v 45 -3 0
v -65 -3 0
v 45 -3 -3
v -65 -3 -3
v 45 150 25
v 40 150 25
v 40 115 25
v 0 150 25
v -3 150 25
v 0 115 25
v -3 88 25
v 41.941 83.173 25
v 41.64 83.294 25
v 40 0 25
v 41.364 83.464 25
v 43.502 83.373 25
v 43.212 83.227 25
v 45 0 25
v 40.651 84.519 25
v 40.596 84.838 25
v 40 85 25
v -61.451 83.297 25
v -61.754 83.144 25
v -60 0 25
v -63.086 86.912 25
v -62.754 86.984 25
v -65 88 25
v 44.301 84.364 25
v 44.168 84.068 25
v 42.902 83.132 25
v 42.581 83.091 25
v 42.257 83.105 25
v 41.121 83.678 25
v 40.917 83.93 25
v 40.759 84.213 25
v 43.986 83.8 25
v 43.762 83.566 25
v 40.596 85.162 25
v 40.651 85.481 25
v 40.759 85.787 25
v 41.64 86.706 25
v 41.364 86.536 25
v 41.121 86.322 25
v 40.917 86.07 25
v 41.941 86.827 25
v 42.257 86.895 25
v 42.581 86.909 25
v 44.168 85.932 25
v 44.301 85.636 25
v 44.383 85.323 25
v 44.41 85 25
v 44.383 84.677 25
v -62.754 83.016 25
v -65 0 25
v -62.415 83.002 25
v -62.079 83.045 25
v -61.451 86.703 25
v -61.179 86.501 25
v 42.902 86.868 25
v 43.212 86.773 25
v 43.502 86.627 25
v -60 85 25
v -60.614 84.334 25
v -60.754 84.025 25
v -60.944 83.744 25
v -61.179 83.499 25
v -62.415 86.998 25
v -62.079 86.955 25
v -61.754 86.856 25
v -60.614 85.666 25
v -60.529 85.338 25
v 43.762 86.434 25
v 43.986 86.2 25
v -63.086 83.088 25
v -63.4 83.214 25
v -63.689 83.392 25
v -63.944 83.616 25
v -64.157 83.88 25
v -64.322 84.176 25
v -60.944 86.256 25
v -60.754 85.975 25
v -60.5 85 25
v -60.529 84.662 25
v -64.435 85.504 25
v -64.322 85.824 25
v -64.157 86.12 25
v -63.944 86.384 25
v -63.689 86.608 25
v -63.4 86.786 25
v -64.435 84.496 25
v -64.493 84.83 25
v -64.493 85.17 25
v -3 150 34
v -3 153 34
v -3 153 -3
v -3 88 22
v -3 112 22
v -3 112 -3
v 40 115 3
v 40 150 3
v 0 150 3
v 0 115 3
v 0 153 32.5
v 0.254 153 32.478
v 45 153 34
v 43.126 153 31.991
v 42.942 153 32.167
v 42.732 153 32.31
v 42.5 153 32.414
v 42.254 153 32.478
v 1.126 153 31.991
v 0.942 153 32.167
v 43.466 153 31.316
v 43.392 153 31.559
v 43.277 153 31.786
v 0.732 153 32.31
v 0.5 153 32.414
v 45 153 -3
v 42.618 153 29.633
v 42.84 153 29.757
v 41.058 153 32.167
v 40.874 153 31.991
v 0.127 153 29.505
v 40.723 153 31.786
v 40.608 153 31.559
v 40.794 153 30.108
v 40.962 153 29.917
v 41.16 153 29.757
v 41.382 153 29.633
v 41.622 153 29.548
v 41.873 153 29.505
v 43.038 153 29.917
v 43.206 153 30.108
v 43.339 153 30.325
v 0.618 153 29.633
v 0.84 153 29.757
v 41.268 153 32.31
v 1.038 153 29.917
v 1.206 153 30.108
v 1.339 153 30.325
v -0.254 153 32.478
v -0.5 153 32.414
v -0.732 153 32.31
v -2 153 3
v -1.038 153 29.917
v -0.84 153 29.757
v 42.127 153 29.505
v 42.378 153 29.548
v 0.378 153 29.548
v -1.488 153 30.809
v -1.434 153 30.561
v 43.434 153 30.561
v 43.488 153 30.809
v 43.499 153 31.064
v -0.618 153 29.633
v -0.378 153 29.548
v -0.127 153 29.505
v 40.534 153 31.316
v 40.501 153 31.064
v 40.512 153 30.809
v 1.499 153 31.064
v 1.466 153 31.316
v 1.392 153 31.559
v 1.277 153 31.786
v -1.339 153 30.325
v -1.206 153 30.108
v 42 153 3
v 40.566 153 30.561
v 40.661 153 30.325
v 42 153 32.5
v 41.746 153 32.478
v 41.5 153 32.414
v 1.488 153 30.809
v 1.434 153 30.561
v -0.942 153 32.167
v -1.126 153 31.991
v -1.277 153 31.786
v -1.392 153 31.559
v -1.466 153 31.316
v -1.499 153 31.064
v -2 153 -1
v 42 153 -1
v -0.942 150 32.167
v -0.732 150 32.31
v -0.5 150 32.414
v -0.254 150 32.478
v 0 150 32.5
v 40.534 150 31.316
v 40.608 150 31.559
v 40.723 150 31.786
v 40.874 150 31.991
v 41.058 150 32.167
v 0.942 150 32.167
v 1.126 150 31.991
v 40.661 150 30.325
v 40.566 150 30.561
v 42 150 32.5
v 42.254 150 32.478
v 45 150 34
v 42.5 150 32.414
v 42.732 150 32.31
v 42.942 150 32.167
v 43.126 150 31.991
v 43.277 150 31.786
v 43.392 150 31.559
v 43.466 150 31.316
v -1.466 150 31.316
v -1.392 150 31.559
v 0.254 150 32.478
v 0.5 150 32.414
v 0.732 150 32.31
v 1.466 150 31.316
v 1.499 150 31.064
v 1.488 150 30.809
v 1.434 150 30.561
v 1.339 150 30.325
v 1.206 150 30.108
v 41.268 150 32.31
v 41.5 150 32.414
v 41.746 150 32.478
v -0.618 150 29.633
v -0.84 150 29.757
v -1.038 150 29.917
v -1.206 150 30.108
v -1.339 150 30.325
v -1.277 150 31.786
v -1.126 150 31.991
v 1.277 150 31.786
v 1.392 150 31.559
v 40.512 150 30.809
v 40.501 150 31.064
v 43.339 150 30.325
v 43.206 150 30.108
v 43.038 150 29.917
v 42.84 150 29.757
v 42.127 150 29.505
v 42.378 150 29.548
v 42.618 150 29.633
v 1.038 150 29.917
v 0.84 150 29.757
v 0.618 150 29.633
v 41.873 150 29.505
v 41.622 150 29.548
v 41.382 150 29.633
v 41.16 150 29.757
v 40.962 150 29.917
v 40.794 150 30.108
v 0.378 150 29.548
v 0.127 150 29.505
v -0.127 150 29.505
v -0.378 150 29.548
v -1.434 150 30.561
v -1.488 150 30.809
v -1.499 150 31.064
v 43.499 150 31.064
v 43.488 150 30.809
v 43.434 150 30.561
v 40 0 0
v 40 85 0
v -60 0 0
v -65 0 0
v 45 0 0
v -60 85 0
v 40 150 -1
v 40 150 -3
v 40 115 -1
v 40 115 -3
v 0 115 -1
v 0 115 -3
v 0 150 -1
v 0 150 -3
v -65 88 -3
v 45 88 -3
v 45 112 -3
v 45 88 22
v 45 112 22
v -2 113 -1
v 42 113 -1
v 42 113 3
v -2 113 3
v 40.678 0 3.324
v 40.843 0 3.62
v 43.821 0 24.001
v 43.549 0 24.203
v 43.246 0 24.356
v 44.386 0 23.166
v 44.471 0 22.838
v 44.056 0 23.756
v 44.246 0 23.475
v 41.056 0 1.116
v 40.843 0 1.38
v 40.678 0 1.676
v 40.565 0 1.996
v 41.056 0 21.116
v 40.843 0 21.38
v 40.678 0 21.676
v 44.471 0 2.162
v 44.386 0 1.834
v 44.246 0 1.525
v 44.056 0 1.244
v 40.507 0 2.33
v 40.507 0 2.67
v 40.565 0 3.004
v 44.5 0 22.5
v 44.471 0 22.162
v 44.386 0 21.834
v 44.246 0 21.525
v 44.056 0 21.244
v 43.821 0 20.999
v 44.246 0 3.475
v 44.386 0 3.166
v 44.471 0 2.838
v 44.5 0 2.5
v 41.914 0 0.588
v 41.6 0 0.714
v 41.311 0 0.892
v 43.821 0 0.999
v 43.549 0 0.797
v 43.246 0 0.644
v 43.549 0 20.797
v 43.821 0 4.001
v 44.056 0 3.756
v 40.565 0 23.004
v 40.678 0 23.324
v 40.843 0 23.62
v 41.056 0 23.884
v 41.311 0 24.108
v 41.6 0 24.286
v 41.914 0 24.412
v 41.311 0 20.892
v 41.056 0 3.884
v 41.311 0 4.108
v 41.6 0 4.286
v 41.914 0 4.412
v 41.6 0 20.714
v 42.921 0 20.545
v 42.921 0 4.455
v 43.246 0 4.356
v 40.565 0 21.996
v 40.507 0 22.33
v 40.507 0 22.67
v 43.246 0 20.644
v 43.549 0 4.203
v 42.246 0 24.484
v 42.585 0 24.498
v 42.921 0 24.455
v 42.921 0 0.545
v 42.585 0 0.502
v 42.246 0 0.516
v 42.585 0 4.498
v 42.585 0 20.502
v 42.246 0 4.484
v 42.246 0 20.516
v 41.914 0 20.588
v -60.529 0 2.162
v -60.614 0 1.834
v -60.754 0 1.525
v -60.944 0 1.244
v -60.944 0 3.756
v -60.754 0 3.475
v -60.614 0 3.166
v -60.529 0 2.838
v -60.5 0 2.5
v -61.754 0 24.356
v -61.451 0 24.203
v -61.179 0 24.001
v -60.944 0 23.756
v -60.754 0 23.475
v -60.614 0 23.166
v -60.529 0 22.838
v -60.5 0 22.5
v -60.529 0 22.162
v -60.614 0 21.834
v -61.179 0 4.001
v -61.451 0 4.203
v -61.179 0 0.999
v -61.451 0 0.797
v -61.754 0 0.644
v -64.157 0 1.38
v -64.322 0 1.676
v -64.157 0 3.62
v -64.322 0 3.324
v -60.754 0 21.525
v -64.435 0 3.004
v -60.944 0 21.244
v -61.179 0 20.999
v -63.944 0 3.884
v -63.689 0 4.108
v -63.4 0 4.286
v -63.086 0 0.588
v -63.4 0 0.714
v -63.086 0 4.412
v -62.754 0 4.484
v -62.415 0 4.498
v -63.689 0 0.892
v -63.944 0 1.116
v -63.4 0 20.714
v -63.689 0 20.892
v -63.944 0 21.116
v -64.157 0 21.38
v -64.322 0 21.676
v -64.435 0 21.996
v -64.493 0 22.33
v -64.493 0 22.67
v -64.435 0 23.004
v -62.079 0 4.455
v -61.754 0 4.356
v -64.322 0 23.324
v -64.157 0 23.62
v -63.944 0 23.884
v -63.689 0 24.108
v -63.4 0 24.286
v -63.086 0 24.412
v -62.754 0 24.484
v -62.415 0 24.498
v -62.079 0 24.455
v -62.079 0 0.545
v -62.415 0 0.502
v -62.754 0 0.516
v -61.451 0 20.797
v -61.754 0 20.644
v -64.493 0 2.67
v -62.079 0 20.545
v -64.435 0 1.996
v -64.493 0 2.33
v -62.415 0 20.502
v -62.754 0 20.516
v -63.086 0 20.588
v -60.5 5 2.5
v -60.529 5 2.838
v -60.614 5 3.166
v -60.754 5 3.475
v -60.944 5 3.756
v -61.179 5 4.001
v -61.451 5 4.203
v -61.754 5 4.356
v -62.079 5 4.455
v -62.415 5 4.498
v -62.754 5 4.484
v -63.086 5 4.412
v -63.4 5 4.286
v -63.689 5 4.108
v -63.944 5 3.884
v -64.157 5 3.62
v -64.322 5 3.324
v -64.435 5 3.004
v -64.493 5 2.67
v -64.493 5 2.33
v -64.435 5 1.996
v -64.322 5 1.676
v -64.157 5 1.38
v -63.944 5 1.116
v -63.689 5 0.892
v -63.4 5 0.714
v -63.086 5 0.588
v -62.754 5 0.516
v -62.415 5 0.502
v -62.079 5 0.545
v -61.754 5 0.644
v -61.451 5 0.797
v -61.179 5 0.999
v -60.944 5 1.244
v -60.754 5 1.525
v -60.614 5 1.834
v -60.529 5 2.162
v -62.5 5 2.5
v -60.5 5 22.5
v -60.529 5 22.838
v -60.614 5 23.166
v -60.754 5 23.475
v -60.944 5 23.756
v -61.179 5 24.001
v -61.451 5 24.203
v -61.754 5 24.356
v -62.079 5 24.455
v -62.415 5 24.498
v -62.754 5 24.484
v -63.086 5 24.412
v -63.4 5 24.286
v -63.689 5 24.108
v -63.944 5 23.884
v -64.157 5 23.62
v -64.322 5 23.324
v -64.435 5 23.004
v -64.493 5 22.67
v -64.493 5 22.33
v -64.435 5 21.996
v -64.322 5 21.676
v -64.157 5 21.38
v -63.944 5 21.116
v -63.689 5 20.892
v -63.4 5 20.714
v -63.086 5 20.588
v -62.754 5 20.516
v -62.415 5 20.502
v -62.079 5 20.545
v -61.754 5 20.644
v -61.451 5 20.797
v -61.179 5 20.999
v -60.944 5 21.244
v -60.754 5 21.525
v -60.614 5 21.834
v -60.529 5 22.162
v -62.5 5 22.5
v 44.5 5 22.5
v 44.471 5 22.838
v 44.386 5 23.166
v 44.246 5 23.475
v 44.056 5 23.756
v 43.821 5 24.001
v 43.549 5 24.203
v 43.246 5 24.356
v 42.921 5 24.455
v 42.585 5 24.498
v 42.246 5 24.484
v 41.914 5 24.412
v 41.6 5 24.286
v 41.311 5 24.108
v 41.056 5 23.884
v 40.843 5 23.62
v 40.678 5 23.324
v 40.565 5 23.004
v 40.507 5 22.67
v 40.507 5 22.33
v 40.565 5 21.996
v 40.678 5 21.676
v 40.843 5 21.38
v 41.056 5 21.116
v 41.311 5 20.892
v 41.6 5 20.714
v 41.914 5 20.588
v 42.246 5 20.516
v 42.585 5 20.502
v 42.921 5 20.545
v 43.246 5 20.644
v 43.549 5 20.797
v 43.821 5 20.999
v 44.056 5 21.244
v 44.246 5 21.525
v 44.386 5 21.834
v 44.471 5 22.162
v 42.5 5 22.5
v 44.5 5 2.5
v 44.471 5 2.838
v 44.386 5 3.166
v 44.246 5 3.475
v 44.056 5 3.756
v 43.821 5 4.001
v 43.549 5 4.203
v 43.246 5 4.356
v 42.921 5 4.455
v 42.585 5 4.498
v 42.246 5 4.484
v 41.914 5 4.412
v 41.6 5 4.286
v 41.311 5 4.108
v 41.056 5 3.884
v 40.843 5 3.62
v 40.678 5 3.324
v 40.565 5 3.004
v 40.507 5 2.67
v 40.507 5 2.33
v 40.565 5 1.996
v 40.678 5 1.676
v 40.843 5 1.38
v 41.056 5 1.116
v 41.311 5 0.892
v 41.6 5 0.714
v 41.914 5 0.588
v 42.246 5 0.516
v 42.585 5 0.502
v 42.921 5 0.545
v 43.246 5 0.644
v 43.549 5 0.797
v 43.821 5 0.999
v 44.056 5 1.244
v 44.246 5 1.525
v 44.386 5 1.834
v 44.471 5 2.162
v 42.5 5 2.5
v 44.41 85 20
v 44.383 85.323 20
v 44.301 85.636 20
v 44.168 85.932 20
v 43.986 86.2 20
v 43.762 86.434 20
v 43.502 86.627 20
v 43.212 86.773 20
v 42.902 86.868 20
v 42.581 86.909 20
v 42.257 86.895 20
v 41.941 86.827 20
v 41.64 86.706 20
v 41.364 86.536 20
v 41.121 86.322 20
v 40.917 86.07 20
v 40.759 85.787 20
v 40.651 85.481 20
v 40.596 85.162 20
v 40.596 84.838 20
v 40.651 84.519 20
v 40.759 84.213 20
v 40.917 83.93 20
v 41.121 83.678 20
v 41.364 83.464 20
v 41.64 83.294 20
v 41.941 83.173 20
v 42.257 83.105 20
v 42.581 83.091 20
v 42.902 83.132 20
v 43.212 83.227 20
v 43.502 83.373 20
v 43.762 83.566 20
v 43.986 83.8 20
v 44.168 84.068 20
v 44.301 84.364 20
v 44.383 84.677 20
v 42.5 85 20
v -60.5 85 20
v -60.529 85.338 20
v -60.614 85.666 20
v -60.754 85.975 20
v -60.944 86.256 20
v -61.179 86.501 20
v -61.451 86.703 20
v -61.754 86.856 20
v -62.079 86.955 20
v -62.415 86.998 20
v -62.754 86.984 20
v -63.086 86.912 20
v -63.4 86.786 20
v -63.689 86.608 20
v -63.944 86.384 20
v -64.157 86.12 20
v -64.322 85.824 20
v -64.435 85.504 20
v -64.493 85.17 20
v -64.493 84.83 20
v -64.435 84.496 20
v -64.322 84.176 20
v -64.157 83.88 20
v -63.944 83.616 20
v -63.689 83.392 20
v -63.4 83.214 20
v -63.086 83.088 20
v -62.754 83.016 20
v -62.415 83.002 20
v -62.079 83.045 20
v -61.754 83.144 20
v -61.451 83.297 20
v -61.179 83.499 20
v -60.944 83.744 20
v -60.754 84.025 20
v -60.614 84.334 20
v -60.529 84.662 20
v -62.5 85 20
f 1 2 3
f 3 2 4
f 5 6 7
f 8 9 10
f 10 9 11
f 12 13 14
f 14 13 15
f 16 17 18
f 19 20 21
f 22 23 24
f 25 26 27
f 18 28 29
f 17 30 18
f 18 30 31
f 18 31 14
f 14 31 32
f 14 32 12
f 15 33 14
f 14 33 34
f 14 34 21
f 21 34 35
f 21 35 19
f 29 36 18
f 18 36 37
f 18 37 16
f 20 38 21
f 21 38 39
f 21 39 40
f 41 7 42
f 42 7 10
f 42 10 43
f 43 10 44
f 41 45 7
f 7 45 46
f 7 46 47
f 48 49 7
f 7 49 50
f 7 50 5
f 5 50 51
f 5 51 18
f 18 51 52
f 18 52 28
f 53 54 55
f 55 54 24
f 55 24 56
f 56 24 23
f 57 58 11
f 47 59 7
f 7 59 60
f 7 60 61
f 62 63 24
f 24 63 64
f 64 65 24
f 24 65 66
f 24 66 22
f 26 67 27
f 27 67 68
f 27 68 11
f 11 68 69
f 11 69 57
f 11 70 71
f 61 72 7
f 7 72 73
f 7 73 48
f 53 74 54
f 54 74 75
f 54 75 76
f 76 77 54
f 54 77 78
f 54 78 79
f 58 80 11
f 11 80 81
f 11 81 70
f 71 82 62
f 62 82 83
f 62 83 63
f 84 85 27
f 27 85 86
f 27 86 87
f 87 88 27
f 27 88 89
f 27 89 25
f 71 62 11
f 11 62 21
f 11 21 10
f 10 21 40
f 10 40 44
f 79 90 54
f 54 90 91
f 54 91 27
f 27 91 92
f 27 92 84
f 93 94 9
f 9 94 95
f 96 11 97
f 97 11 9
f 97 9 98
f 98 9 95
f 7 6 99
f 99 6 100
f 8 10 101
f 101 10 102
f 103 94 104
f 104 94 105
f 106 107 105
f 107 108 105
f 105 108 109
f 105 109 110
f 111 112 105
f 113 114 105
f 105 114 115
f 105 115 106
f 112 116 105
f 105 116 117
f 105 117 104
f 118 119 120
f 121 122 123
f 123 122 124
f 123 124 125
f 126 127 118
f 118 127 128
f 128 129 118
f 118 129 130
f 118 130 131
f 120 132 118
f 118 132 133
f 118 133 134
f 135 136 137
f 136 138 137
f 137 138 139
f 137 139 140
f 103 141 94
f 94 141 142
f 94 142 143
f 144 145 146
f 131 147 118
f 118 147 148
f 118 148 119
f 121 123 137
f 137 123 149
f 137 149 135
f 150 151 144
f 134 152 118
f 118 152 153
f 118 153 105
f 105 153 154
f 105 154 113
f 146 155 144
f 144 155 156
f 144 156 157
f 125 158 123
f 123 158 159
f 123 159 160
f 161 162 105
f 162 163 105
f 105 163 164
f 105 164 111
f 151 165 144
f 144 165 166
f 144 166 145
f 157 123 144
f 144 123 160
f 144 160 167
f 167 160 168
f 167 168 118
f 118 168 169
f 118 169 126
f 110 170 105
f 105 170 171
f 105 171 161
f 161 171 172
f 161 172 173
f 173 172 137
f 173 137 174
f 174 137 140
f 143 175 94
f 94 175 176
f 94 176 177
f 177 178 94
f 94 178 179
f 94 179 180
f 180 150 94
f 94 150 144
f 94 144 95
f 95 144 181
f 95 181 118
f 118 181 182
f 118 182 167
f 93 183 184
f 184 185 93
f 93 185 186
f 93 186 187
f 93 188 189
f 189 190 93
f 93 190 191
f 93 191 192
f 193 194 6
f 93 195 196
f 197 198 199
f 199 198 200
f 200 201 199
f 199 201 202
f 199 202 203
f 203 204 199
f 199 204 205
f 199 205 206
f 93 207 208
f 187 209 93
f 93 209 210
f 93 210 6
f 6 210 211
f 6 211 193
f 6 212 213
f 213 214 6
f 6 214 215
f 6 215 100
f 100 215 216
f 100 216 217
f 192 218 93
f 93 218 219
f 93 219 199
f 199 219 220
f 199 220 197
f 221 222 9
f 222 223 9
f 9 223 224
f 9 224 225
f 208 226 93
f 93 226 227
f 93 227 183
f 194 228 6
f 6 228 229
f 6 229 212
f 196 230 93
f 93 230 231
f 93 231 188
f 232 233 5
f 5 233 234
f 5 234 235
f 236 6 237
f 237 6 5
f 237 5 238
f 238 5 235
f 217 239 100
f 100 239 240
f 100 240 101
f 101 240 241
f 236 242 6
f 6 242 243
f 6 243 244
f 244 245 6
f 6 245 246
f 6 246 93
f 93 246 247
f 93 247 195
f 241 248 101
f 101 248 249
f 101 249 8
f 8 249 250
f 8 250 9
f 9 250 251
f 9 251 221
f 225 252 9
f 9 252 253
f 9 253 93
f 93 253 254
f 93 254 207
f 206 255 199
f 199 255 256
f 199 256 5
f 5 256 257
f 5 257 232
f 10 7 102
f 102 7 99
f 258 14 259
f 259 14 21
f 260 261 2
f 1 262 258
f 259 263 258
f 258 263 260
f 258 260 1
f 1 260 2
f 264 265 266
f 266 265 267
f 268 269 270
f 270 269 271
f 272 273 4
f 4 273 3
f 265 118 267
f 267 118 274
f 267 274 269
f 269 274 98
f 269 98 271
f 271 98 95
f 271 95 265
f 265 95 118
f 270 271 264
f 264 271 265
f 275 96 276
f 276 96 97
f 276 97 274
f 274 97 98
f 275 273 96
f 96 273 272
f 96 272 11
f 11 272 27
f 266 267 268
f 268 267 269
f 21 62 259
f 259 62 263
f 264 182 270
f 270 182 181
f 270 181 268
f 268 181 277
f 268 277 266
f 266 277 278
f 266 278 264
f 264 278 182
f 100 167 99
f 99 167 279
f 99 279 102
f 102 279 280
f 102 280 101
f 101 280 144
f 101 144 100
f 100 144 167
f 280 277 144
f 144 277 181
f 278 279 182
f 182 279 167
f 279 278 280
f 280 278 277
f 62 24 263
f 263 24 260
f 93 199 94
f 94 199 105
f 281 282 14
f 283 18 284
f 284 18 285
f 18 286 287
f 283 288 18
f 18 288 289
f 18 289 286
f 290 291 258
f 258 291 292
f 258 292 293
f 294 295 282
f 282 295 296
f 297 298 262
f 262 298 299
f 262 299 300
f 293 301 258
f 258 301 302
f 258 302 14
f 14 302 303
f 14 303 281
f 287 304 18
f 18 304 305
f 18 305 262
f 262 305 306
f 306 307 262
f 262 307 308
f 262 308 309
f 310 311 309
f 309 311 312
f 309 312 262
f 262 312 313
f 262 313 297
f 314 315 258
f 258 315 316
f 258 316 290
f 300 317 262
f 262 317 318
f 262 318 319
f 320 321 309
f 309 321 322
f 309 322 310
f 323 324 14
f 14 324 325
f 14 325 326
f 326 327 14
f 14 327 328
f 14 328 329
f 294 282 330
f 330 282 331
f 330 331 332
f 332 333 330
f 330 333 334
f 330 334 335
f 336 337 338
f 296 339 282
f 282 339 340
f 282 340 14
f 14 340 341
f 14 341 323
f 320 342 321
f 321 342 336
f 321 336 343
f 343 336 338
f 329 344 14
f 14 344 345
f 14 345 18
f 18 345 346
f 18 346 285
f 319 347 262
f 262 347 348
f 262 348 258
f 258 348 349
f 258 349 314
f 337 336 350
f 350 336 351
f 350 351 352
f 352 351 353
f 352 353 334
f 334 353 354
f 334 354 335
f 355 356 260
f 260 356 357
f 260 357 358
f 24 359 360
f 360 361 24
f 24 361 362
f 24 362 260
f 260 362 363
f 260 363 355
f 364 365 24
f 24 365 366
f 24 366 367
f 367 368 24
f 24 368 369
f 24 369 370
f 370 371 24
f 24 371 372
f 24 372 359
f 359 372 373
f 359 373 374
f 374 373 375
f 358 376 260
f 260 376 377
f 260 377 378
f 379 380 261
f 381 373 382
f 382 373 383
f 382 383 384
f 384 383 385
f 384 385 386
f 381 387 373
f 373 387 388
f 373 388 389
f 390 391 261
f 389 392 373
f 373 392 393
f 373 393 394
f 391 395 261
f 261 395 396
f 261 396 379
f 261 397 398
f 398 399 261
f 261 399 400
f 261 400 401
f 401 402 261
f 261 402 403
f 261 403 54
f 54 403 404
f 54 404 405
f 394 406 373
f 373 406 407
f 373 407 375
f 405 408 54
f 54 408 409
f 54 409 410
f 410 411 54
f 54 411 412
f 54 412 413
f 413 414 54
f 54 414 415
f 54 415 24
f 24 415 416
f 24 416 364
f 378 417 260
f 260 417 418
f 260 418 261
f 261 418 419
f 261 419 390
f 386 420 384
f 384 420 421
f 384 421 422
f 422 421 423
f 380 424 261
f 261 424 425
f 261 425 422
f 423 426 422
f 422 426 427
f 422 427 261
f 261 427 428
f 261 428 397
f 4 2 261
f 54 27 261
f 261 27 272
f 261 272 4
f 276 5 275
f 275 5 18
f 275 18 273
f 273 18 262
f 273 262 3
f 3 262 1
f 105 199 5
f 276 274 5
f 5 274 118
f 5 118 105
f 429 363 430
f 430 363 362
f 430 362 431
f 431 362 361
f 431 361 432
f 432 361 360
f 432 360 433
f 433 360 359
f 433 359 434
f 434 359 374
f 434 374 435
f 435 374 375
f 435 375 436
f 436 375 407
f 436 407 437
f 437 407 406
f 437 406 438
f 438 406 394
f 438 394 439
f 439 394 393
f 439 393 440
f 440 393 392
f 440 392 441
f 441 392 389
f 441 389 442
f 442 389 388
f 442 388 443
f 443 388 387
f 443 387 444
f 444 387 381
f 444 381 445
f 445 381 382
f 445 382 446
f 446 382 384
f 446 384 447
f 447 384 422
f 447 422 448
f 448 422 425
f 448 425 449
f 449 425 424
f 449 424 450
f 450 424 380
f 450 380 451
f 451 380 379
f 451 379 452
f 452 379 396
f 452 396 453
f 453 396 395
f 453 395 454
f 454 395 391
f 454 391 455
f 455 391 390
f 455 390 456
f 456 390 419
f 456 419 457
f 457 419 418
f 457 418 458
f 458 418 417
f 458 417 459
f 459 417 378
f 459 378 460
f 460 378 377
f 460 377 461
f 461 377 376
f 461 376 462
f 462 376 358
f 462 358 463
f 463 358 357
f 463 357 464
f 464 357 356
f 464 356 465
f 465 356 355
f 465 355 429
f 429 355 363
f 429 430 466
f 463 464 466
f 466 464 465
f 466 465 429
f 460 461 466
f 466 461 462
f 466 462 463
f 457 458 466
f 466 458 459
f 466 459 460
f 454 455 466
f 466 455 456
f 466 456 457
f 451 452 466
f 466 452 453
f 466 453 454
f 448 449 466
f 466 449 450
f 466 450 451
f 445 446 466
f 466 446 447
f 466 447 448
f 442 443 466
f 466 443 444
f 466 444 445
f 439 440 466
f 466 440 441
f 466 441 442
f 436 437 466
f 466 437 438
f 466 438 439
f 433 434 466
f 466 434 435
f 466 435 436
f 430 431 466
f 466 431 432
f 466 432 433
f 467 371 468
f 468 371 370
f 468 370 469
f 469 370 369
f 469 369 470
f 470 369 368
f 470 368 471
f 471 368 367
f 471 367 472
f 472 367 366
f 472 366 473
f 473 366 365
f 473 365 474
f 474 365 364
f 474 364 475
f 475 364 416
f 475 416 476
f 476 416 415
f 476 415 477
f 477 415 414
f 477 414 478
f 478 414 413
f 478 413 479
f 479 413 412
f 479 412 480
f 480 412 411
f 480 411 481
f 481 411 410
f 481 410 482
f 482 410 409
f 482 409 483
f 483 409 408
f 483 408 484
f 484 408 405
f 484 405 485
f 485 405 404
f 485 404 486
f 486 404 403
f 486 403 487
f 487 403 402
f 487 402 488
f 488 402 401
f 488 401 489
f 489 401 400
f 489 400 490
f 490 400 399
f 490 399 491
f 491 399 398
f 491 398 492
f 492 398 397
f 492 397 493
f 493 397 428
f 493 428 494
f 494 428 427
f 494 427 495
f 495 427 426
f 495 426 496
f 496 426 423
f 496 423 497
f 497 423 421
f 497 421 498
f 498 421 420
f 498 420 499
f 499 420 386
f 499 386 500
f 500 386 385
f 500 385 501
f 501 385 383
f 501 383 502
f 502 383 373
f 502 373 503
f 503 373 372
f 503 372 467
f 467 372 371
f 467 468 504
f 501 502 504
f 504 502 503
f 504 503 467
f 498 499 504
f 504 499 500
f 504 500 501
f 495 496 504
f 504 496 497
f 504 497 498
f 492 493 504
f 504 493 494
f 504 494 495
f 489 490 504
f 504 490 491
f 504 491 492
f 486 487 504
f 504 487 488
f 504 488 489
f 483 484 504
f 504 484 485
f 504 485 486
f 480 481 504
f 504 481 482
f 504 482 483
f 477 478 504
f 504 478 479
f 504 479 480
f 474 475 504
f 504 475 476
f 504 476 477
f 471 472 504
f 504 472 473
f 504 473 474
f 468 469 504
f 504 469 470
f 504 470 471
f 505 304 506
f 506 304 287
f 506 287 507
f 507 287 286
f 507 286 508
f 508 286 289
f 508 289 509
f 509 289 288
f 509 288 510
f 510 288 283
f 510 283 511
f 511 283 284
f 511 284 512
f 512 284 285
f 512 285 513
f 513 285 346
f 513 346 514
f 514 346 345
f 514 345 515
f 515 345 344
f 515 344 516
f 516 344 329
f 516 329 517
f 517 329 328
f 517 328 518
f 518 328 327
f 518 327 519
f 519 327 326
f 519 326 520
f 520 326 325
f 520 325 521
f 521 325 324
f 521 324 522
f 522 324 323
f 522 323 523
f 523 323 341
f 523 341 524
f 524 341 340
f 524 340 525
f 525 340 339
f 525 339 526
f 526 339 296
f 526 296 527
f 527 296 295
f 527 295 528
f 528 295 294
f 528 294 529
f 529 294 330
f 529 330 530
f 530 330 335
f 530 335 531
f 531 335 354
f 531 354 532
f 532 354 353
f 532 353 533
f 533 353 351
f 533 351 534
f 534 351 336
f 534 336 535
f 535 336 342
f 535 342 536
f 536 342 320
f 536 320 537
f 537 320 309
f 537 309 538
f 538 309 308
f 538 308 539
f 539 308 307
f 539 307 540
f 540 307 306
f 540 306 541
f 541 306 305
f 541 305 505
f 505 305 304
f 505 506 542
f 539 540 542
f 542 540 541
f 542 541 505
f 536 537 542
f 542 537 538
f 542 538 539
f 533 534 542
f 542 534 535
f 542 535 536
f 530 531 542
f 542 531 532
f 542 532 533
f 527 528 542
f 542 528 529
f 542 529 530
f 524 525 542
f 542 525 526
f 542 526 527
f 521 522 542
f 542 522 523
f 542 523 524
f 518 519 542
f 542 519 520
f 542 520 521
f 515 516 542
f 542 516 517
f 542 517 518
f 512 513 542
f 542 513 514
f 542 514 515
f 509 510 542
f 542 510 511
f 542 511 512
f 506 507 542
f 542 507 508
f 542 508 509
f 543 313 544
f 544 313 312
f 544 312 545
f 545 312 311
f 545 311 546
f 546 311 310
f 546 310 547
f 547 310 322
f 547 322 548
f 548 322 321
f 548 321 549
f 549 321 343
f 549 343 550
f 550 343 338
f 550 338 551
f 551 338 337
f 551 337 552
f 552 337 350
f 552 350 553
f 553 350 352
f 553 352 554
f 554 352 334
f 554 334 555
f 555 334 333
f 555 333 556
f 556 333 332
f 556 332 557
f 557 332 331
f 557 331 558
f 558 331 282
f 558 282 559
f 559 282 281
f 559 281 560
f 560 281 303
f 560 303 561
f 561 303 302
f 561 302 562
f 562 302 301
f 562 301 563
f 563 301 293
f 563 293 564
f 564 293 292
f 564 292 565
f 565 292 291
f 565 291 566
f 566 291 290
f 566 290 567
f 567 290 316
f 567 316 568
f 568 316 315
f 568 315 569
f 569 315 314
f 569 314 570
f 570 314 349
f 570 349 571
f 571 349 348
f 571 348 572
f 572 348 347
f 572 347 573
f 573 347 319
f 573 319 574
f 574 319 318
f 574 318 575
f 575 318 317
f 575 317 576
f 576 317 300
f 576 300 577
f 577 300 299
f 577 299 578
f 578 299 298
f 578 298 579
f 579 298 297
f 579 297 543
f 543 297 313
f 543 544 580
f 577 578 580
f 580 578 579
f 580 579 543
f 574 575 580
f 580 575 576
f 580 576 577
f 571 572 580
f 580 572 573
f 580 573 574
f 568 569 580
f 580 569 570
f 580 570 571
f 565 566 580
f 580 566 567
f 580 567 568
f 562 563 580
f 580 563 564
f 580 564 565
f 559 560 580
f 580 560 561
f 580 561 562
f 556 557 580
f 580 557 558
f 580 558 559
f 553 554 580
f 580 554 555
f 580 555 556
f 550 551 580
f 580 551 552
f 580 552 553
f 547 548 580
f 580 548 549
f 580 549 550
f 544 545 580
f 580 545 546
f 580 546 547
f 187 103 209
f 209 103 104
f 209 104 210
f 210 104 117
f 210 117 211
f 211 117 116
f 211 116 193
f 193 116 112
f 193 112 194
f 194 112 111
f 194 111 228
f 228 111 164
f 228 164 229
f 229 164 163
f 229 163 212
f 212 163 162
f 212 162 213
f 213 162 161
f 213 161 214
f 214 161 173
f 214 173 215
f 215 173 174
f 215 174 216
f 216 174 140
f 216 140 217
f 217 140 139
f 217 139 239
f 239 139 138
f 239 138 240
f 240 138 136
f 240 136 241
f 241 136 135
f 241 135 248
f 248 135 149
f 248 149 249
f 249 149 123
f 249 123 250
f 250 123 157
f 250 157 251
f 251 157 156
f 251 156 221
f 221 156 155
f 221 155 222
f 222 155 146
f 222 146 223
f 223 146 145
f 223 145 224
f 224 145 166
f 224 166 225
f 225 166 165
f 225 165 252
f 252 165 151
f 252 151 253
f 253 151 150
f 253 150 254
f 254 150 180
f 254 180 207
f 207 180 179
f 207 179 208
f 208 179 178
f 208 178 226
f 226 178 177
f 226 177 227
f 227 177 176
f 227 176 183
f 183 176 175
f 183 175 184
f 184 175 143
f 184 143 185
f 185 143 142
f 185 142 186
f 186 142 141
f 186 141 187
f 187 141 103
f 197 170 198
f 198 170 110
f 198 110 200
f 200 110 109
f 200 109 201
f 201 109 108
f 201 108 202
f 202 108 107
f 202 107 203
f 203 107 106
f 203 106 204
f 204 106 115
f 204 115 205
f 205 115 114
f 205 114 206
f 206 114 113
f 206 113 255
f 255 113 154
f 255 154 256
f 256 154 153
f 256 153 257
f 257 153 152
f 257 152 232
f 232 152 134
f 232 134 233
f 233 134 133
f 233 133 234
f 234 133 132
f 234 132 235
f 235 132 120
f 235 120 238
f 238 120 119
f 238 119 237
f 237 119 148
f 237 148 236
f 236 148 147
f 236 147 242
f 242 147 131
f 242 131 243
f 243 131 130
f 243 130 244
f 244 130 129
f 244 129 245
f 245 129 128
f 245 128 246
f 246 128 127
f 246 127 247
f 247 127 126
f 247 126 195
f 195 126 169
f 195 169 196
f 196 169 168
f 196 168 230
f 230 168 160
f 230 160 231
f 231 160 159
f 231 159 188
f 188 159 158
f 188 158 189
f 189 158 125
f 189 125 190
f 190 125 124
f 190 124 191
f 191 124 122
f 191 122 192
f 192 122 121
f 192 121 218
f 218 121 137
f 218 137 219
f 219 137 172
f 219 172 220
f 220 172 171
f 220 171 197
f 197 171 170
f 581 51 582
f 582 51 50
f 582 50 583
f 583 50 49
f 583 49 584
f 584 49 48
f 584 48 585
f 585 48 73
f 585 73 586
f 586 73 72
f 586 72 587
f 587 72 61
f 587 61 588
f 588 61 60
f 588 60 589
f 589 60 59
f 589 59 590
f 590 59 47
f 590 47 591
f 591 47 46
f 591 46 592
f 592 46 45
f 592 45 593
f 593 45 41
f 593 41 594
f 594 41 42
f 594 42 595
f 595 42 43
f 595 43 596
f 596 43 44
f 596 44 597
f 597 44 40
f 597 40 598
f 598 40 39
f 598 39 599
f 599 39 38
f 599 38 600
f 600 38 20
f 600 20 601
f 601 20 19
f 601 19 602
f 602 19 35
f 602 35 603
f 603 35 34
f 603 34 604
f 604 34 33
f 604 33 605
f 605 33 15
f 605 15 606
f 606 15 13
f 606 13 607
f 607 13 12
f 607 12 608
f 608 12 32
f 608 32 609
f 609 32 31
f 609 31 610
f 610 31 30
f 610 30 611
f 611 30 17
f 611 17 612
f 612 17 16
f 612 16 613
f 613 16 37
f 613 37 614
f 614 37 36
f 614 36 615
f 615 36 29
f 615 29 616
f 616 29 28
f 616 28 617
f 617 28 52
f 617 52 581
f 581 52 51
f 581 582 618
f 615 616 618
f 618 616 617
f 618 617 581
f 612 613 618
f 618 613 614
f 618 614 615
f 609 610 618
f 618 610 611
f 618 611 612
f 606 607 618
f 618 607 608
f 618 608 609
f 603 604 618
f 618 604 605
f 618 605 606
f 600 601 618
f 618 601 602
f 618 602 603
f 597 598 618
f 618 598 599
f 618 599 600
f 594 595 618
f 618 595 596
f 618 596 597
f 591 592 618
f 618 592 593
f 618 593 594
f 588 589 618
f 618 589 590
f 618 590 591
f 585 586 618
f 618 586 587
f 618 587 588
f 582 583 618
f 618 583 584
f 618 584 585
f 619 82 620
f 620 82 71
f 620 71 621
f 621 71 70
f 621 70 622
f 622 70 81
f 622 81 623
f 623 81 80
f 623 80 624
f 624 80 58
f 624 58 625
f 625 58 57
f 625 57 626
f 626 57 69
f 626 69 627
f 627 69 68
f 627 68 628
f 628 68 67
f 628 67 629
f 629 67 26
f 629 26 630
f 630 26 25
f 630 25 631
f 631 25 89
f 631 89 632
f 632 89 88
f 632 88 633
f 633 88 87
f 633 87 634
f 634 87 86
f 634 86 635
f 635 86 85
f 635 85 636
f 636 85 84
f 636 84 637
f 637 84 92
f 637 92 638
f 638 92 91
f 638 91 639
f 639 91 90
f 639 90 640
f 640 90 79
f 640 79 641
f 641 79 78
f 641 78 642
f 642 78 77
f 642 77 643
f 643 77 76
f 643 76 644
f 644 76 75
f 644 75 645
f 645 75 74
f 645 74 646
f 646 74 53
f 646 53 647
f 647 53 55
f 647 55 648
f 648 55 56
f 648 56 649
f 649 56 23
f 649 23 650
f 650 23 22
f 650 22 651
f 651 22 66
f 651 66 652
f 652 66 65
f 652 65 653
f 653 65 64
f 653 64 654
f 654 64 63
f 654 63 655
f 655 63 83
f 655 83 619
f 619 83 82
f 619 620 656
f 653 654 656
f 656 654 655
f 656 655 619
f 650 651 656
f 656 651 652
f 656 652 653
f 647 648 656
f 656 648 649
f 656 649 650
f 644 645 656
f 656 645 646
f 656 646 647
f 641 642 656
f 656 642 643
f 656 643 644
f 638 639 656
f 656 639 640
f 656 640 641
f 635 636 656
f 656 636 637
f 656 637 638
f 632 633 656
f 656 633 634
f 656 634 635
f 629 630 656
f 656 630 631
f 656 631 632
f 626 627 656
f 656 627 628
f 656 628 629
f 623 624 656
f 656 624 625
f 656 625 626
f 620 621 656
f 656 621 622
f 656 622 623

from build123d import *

# Parameters (mm, degrees)
SKICA1_W                      = 40
SKICA1_H                      = 85
SKICA1_H_2                    = 35
SKICA1_H_3                    = 30
P_IDAT_VYSUNUT_M1_DEPTH       = 3
SKICA3_W                      = 46
SKICA3_H                      = 156
SKICA3_W_2                    = 40
SKICA3_H_2                    = 150
VYSUNOUT_TENKOST_NN_1_DEPTH   = 28
ODEBRAT_VYSUNUT_M2_DEPTH      = 22
ODEBRAT_VYSUNUT_M2_DEPTH_BACK = 17
SKICA4_W                      = 40
SKICA4_H                      = 24
SKICA4_W_2                    = 6.963710183
SKICA4_W_3                    = 3
SKICA5_W                      = 43
SKICA5_H                      = 3
SKICA5_W_2                    = 40
P_IDAT_VYSUNUT_M2_DEPTH       = 25
SKICA6_W                      = 40
SKICA6_H                      = 24
P_IDAT_VYSUNUT_M3_DEPTH       = 3
SKICA7_W                      = 40
SKICA7_H                      = 35
ODEBRAT_VYSUNUT_M3_DEPTH      = 161.881944295
SKICA8_W                      = 44
SKICA8_H                      = 4
ODEBRAT_VYSUNUT_M4_DEPTH      = 40
SKICA13_W                     = 60
SKICA13_H                     = 85
P_IDAT_VYSUNUT_M7_DEPTH       = 3
SKICA14_W                     = 63
SKICA14_H                     = 91
SKICA14_W_2                   = 57
SKICA14_H_2                   = 85
P_IDAT_VYSUNUT_M8_DEPTH       = 28
SKICA15_W                     = 3
SKICA15_H                     = 85
ODEBRAT_VYSUNUT_M6_DEPTH      = 25
SKICA16_W                     = 46
SKICA16_H                     = 3
P_IDAT_VYSUNUT_M9_DEPTH       = 9
SKICA17_W                     = 110
SKICA17_H                     = 3
ODEBRAT_VYSUNUT_M7_DEPTH      = 34
SKICA21_W                     = 3
SKICA21_H                     = 3
P_IDAT_VYSUNUT_M10_DEPTH      = 2
P_IDAT_VYSUNUT_M11_DEPTH      = 2
SKICA23_R                     = 2
ODEBRAT_VYSUNUT_M10_DEPTH     = 5
ODEBRAT_VYSUNUT_M8_DEPTH      = 173.386194343
ODEBRAT_VYSUNUT_M8_DEPTH_BACK = 173.386194343
SKICA19_R                     = 1.5
SKICA24_R                     = 2
SKICA24_R_2                   = 1.910403137
ODEBRAT_VYSUNUT_M11_DEPTH     = 5


with BuildPart() as part:
    # Skica1 → Přidat vysunutím1 (new body)
    with BuildSketch(Plane.XY):
        with Locations((20, 42.5)):
            Rectangle(SKICA1_W, SKICA1_H)
        with Locations((20, 102.5)):
            Rectangle(SKICA1_W, SKICA1_H_2)
        with Locations((20, 135)):
            Rectangle(SKICA1_W, SKICA1_H_3)
    extrude(amount=-P_IDAT_VYSUNUT_M1_DEPTH)

    # Skica3 → Vysunout tenkostěnný1 (add)
    with BuildSketch(Plane(origin=(0, 0, -3), x_dir=(-1, 0, 0), z_dir=(0, 0, -1))):
        with Locations((-20, 75)):
            Rectangle(SKICA3_W, SKICA3_H)
        with Locations((-20, 75)):
            Rectangle(SKICA3_W_2, SKICA3_H_2, mode=Mode.SUBTRACT)
    extrude(amount=-VYSUNOUT_TENKOST_NN_1_DEPTH)

    # Skica4 → Odebrat vysunutím2 (cut, two sides: drawn at the far end of the back side and taken through both)
    with BuildSketch(Plane.XY.offset(-ODEBRAT_VYSUNUT_M2_DEPTH_BACK)):
        with Locations((20, 100)):
            Rectangle(SKICA4_W, SKICA4_H)
        with Locations((-3.481855092, 100)):
            Rectangle(SKICA4_W_2, SKICA4_H)
        with Locations((41.5, 100)):
            Rectangle(SKICA4_W_3, SKICA4_H)
    extrude(amount=ODEBRAT_VYSUNUT_M2_DEPTH + ODEBRAT_VYSUNUT_M2_DEPTH_BACK, mode=Mode.SUBTRACT)

    # Skica5 → Přidat vysunutím2 (add)
    with BuildSketch(Plane.XY):
        with Locations((21.5, 113.5)):
            Rectangle(SKICA5_W, SKICA5_H)
        with Locations((20, 86.5)):
            Rectangle(SKICA5_W_2, SKICA5_H)
    extrude(amount=P_IDAT_VYSUNUT_M2_DEPTH)

    # Skica6 → Přidat vysunutím3 (add)
    with BuildSketch(Plane.XY.offset(25)):
        with Locations((20, 100)):
            Rectangle(SKICA6_W, SKICA6_H)
    extrude(amount=-P_IDAT_VYSUNUT_M3_DEPTH)

    # Skica7 → Odebrat vysunutím3 (cut, through all)
    with BuildSketch(Plane.XY):
        with Locations((20, 132.5)):
            Rectangle(SKICA7_W, SKICA7_H)
    extrude(amount=-ODEBRAT_VYSUNUT_M3_DEPTH, mode=Mode.SUBTRACT)

    # Skica8 → Odebrat vysunutím4 (cut)
    with BuildSketch(Plane(origin=(0, 153, 0), x_dir=(1, 0, 0), z_dir=(0, 1, 0))):
        with Locations((20, -1)):
            Rectangle(SKICA8_W, SKICA8_H)
    extrude(amount=-ODEBRAT_VYSUNUT_M4_DEPTH, mode=Mode.SUBTRACT)

    # Skica13 → Přidat vysunutím7 (add)
    with BuildSketch(Plane(origin=(0, 0, -3), x_dir=(-1, 0, 0), z_dir=(0, 0, -1))):
        with Locations((30, 42.5)):
            Rectangle(SKICA13_W, SKICA13_H)
    extrude(amount=-P_IDAT_VYSUNUT_M7_DEPTH)

    # Skica14 → Přidat vysunutím8 (add)
    with BuildSketch(Plane(origin=(0, 0, -3), x_dir=(-1, 0, 0), z_dir=(0, 0, -1))):
        with Locations((31.5, 42.5)):
            Rectangle(SKICA14_W, SKICA14_H)
        with Locations((31.5, 42.5)):
            Rectangle(SKICA14_W_2, SKICA14_H_2, mode=Mode.SUBTRACT)
    extrude(amount=-P_IDAT_VYSUNUT_M8_DEPTH)

    # Skica15 → Odebrat vysunutím6 (cut)
    with BuildSketch(Plane.XY.offset(25)):
        with Locations((-1.5, 42.5)):
            Rectangle(SKICA15_W, SKICA15_H)
    extrude(amount=-ODEBRAT_VYSUNUT_M6_DEPTH, mode=Mode.SUBTRACT)

    # Skica16 → Přidat vysunutím9 (add)
    with BuildSketch(Plane.XY.offset(25)):
        with Locations((20, 151.5)):
            Rectangle(SKICA16_W, SKICA16_H)
    extrude(amount=P_IDAT_VYSUNUT_M9_DEPTH)

    # Skica17 → Odebrat vysunutím7 (cut)
    with BuildSketch(Plane.XY.offset(34)):
        with Locations((-10, -1.5)):
            Rectangle(SKICA17_W, SKICA17_H)
    extrude(amount=-ODEBRAT_VYSUNUT_M7_DEPTH, mode=Mode.SUBTRACT)

    # Skica21 → Přidat vysunutím10 (add)
    with BuildSketch(Plane.ZY.offset(63)):
        Polygon((25, 0), (25, 88), (-3, 88), (-3, 0), (0, 0), align=None)
        with Locations((-1.5, -1.5)):
            Rectangle(SKICA21_W, SKICA21_H)
    extrude(amount=P_IDAT_VYSUNUT_M10_DEPTH)

    # Skica22 → Přidat vysunutím11 (add)
    with BuildSketch(Plane(origin=(43, 0, 0), x_dir=(0, 0, -1), z_dir=(1, 0, 0))):
        Polygon((-25, 0), (0, 0), (0, -3), (3, -3), (3, 0), (3, 88), (-22, 88), (-22, 112), (3, 112), (3, 153), (-25, 153), (-34, 153), (-34, 150), (-25, 150), (-25, 112), (-25, 88), align=None)
    extrude(amount=P_IDAT_VYSUNUT_M11_DEPTH)

    # Skica23 → Odebrat vysunutím10 (cut)
    with BuildSketch(Plane.XZ):
        with Locations((42.5, 22.5)):
            Circle(SKICA23_R)
        with Locations((42.5, 2.5)):
            Circle(SKICA23_R)
        with Locations((-62.5, 2.5)):
            Circle(SKICA23_R)
        with Locations((-62.5, 22.5)):
            Circle(SKICA23_R)
    extrude(amount=-ODEBRAT_VYSUNUT_M10_DEPTH, mode=Mode.SUBTRACT)

    # Skica19 → Odebrat vysunutím8 (cut, two sides: drawn at the far end of the back side and taken through both)
    with BuildSketch(Plane(origin=(0, 153, 0), x_dir=(1, 0, 0), z_dir=(0, 1, 0)).offset(-ODEBRAT_VYSUNUT_M8_DEPTH_BACK)):
        with Locations(Location((42, -31, 0), (0, 0, 270))):
            Circle(SKICA19_R)
        with Locations(Location((0, -31, 0), (0, 0, 270))):
            Circle(SKICA19_R)
    extrude(amount=ODEBRAT_VYSUNUT_M8_DEPTH + ODEBRAT_VYSUNUT_M8_DEPTH_BACK, mode=Mode.SUBTRACT)

    # Skica24 → Odebrat vysunutím11 (cut)
    with BuildSketch(Plane.XY.offset(25)):
        with Locations((-62.5, 85)):
            Circle(SKICA24_R)
        with Locations((42.5, 85)):
            Circle(SKICA24_R_2)
    extrude(amount=-ODEBRAT_VYSUNUT_M11_DEPTH, mode=Mode.SUBTRACT)


solid = part.part
